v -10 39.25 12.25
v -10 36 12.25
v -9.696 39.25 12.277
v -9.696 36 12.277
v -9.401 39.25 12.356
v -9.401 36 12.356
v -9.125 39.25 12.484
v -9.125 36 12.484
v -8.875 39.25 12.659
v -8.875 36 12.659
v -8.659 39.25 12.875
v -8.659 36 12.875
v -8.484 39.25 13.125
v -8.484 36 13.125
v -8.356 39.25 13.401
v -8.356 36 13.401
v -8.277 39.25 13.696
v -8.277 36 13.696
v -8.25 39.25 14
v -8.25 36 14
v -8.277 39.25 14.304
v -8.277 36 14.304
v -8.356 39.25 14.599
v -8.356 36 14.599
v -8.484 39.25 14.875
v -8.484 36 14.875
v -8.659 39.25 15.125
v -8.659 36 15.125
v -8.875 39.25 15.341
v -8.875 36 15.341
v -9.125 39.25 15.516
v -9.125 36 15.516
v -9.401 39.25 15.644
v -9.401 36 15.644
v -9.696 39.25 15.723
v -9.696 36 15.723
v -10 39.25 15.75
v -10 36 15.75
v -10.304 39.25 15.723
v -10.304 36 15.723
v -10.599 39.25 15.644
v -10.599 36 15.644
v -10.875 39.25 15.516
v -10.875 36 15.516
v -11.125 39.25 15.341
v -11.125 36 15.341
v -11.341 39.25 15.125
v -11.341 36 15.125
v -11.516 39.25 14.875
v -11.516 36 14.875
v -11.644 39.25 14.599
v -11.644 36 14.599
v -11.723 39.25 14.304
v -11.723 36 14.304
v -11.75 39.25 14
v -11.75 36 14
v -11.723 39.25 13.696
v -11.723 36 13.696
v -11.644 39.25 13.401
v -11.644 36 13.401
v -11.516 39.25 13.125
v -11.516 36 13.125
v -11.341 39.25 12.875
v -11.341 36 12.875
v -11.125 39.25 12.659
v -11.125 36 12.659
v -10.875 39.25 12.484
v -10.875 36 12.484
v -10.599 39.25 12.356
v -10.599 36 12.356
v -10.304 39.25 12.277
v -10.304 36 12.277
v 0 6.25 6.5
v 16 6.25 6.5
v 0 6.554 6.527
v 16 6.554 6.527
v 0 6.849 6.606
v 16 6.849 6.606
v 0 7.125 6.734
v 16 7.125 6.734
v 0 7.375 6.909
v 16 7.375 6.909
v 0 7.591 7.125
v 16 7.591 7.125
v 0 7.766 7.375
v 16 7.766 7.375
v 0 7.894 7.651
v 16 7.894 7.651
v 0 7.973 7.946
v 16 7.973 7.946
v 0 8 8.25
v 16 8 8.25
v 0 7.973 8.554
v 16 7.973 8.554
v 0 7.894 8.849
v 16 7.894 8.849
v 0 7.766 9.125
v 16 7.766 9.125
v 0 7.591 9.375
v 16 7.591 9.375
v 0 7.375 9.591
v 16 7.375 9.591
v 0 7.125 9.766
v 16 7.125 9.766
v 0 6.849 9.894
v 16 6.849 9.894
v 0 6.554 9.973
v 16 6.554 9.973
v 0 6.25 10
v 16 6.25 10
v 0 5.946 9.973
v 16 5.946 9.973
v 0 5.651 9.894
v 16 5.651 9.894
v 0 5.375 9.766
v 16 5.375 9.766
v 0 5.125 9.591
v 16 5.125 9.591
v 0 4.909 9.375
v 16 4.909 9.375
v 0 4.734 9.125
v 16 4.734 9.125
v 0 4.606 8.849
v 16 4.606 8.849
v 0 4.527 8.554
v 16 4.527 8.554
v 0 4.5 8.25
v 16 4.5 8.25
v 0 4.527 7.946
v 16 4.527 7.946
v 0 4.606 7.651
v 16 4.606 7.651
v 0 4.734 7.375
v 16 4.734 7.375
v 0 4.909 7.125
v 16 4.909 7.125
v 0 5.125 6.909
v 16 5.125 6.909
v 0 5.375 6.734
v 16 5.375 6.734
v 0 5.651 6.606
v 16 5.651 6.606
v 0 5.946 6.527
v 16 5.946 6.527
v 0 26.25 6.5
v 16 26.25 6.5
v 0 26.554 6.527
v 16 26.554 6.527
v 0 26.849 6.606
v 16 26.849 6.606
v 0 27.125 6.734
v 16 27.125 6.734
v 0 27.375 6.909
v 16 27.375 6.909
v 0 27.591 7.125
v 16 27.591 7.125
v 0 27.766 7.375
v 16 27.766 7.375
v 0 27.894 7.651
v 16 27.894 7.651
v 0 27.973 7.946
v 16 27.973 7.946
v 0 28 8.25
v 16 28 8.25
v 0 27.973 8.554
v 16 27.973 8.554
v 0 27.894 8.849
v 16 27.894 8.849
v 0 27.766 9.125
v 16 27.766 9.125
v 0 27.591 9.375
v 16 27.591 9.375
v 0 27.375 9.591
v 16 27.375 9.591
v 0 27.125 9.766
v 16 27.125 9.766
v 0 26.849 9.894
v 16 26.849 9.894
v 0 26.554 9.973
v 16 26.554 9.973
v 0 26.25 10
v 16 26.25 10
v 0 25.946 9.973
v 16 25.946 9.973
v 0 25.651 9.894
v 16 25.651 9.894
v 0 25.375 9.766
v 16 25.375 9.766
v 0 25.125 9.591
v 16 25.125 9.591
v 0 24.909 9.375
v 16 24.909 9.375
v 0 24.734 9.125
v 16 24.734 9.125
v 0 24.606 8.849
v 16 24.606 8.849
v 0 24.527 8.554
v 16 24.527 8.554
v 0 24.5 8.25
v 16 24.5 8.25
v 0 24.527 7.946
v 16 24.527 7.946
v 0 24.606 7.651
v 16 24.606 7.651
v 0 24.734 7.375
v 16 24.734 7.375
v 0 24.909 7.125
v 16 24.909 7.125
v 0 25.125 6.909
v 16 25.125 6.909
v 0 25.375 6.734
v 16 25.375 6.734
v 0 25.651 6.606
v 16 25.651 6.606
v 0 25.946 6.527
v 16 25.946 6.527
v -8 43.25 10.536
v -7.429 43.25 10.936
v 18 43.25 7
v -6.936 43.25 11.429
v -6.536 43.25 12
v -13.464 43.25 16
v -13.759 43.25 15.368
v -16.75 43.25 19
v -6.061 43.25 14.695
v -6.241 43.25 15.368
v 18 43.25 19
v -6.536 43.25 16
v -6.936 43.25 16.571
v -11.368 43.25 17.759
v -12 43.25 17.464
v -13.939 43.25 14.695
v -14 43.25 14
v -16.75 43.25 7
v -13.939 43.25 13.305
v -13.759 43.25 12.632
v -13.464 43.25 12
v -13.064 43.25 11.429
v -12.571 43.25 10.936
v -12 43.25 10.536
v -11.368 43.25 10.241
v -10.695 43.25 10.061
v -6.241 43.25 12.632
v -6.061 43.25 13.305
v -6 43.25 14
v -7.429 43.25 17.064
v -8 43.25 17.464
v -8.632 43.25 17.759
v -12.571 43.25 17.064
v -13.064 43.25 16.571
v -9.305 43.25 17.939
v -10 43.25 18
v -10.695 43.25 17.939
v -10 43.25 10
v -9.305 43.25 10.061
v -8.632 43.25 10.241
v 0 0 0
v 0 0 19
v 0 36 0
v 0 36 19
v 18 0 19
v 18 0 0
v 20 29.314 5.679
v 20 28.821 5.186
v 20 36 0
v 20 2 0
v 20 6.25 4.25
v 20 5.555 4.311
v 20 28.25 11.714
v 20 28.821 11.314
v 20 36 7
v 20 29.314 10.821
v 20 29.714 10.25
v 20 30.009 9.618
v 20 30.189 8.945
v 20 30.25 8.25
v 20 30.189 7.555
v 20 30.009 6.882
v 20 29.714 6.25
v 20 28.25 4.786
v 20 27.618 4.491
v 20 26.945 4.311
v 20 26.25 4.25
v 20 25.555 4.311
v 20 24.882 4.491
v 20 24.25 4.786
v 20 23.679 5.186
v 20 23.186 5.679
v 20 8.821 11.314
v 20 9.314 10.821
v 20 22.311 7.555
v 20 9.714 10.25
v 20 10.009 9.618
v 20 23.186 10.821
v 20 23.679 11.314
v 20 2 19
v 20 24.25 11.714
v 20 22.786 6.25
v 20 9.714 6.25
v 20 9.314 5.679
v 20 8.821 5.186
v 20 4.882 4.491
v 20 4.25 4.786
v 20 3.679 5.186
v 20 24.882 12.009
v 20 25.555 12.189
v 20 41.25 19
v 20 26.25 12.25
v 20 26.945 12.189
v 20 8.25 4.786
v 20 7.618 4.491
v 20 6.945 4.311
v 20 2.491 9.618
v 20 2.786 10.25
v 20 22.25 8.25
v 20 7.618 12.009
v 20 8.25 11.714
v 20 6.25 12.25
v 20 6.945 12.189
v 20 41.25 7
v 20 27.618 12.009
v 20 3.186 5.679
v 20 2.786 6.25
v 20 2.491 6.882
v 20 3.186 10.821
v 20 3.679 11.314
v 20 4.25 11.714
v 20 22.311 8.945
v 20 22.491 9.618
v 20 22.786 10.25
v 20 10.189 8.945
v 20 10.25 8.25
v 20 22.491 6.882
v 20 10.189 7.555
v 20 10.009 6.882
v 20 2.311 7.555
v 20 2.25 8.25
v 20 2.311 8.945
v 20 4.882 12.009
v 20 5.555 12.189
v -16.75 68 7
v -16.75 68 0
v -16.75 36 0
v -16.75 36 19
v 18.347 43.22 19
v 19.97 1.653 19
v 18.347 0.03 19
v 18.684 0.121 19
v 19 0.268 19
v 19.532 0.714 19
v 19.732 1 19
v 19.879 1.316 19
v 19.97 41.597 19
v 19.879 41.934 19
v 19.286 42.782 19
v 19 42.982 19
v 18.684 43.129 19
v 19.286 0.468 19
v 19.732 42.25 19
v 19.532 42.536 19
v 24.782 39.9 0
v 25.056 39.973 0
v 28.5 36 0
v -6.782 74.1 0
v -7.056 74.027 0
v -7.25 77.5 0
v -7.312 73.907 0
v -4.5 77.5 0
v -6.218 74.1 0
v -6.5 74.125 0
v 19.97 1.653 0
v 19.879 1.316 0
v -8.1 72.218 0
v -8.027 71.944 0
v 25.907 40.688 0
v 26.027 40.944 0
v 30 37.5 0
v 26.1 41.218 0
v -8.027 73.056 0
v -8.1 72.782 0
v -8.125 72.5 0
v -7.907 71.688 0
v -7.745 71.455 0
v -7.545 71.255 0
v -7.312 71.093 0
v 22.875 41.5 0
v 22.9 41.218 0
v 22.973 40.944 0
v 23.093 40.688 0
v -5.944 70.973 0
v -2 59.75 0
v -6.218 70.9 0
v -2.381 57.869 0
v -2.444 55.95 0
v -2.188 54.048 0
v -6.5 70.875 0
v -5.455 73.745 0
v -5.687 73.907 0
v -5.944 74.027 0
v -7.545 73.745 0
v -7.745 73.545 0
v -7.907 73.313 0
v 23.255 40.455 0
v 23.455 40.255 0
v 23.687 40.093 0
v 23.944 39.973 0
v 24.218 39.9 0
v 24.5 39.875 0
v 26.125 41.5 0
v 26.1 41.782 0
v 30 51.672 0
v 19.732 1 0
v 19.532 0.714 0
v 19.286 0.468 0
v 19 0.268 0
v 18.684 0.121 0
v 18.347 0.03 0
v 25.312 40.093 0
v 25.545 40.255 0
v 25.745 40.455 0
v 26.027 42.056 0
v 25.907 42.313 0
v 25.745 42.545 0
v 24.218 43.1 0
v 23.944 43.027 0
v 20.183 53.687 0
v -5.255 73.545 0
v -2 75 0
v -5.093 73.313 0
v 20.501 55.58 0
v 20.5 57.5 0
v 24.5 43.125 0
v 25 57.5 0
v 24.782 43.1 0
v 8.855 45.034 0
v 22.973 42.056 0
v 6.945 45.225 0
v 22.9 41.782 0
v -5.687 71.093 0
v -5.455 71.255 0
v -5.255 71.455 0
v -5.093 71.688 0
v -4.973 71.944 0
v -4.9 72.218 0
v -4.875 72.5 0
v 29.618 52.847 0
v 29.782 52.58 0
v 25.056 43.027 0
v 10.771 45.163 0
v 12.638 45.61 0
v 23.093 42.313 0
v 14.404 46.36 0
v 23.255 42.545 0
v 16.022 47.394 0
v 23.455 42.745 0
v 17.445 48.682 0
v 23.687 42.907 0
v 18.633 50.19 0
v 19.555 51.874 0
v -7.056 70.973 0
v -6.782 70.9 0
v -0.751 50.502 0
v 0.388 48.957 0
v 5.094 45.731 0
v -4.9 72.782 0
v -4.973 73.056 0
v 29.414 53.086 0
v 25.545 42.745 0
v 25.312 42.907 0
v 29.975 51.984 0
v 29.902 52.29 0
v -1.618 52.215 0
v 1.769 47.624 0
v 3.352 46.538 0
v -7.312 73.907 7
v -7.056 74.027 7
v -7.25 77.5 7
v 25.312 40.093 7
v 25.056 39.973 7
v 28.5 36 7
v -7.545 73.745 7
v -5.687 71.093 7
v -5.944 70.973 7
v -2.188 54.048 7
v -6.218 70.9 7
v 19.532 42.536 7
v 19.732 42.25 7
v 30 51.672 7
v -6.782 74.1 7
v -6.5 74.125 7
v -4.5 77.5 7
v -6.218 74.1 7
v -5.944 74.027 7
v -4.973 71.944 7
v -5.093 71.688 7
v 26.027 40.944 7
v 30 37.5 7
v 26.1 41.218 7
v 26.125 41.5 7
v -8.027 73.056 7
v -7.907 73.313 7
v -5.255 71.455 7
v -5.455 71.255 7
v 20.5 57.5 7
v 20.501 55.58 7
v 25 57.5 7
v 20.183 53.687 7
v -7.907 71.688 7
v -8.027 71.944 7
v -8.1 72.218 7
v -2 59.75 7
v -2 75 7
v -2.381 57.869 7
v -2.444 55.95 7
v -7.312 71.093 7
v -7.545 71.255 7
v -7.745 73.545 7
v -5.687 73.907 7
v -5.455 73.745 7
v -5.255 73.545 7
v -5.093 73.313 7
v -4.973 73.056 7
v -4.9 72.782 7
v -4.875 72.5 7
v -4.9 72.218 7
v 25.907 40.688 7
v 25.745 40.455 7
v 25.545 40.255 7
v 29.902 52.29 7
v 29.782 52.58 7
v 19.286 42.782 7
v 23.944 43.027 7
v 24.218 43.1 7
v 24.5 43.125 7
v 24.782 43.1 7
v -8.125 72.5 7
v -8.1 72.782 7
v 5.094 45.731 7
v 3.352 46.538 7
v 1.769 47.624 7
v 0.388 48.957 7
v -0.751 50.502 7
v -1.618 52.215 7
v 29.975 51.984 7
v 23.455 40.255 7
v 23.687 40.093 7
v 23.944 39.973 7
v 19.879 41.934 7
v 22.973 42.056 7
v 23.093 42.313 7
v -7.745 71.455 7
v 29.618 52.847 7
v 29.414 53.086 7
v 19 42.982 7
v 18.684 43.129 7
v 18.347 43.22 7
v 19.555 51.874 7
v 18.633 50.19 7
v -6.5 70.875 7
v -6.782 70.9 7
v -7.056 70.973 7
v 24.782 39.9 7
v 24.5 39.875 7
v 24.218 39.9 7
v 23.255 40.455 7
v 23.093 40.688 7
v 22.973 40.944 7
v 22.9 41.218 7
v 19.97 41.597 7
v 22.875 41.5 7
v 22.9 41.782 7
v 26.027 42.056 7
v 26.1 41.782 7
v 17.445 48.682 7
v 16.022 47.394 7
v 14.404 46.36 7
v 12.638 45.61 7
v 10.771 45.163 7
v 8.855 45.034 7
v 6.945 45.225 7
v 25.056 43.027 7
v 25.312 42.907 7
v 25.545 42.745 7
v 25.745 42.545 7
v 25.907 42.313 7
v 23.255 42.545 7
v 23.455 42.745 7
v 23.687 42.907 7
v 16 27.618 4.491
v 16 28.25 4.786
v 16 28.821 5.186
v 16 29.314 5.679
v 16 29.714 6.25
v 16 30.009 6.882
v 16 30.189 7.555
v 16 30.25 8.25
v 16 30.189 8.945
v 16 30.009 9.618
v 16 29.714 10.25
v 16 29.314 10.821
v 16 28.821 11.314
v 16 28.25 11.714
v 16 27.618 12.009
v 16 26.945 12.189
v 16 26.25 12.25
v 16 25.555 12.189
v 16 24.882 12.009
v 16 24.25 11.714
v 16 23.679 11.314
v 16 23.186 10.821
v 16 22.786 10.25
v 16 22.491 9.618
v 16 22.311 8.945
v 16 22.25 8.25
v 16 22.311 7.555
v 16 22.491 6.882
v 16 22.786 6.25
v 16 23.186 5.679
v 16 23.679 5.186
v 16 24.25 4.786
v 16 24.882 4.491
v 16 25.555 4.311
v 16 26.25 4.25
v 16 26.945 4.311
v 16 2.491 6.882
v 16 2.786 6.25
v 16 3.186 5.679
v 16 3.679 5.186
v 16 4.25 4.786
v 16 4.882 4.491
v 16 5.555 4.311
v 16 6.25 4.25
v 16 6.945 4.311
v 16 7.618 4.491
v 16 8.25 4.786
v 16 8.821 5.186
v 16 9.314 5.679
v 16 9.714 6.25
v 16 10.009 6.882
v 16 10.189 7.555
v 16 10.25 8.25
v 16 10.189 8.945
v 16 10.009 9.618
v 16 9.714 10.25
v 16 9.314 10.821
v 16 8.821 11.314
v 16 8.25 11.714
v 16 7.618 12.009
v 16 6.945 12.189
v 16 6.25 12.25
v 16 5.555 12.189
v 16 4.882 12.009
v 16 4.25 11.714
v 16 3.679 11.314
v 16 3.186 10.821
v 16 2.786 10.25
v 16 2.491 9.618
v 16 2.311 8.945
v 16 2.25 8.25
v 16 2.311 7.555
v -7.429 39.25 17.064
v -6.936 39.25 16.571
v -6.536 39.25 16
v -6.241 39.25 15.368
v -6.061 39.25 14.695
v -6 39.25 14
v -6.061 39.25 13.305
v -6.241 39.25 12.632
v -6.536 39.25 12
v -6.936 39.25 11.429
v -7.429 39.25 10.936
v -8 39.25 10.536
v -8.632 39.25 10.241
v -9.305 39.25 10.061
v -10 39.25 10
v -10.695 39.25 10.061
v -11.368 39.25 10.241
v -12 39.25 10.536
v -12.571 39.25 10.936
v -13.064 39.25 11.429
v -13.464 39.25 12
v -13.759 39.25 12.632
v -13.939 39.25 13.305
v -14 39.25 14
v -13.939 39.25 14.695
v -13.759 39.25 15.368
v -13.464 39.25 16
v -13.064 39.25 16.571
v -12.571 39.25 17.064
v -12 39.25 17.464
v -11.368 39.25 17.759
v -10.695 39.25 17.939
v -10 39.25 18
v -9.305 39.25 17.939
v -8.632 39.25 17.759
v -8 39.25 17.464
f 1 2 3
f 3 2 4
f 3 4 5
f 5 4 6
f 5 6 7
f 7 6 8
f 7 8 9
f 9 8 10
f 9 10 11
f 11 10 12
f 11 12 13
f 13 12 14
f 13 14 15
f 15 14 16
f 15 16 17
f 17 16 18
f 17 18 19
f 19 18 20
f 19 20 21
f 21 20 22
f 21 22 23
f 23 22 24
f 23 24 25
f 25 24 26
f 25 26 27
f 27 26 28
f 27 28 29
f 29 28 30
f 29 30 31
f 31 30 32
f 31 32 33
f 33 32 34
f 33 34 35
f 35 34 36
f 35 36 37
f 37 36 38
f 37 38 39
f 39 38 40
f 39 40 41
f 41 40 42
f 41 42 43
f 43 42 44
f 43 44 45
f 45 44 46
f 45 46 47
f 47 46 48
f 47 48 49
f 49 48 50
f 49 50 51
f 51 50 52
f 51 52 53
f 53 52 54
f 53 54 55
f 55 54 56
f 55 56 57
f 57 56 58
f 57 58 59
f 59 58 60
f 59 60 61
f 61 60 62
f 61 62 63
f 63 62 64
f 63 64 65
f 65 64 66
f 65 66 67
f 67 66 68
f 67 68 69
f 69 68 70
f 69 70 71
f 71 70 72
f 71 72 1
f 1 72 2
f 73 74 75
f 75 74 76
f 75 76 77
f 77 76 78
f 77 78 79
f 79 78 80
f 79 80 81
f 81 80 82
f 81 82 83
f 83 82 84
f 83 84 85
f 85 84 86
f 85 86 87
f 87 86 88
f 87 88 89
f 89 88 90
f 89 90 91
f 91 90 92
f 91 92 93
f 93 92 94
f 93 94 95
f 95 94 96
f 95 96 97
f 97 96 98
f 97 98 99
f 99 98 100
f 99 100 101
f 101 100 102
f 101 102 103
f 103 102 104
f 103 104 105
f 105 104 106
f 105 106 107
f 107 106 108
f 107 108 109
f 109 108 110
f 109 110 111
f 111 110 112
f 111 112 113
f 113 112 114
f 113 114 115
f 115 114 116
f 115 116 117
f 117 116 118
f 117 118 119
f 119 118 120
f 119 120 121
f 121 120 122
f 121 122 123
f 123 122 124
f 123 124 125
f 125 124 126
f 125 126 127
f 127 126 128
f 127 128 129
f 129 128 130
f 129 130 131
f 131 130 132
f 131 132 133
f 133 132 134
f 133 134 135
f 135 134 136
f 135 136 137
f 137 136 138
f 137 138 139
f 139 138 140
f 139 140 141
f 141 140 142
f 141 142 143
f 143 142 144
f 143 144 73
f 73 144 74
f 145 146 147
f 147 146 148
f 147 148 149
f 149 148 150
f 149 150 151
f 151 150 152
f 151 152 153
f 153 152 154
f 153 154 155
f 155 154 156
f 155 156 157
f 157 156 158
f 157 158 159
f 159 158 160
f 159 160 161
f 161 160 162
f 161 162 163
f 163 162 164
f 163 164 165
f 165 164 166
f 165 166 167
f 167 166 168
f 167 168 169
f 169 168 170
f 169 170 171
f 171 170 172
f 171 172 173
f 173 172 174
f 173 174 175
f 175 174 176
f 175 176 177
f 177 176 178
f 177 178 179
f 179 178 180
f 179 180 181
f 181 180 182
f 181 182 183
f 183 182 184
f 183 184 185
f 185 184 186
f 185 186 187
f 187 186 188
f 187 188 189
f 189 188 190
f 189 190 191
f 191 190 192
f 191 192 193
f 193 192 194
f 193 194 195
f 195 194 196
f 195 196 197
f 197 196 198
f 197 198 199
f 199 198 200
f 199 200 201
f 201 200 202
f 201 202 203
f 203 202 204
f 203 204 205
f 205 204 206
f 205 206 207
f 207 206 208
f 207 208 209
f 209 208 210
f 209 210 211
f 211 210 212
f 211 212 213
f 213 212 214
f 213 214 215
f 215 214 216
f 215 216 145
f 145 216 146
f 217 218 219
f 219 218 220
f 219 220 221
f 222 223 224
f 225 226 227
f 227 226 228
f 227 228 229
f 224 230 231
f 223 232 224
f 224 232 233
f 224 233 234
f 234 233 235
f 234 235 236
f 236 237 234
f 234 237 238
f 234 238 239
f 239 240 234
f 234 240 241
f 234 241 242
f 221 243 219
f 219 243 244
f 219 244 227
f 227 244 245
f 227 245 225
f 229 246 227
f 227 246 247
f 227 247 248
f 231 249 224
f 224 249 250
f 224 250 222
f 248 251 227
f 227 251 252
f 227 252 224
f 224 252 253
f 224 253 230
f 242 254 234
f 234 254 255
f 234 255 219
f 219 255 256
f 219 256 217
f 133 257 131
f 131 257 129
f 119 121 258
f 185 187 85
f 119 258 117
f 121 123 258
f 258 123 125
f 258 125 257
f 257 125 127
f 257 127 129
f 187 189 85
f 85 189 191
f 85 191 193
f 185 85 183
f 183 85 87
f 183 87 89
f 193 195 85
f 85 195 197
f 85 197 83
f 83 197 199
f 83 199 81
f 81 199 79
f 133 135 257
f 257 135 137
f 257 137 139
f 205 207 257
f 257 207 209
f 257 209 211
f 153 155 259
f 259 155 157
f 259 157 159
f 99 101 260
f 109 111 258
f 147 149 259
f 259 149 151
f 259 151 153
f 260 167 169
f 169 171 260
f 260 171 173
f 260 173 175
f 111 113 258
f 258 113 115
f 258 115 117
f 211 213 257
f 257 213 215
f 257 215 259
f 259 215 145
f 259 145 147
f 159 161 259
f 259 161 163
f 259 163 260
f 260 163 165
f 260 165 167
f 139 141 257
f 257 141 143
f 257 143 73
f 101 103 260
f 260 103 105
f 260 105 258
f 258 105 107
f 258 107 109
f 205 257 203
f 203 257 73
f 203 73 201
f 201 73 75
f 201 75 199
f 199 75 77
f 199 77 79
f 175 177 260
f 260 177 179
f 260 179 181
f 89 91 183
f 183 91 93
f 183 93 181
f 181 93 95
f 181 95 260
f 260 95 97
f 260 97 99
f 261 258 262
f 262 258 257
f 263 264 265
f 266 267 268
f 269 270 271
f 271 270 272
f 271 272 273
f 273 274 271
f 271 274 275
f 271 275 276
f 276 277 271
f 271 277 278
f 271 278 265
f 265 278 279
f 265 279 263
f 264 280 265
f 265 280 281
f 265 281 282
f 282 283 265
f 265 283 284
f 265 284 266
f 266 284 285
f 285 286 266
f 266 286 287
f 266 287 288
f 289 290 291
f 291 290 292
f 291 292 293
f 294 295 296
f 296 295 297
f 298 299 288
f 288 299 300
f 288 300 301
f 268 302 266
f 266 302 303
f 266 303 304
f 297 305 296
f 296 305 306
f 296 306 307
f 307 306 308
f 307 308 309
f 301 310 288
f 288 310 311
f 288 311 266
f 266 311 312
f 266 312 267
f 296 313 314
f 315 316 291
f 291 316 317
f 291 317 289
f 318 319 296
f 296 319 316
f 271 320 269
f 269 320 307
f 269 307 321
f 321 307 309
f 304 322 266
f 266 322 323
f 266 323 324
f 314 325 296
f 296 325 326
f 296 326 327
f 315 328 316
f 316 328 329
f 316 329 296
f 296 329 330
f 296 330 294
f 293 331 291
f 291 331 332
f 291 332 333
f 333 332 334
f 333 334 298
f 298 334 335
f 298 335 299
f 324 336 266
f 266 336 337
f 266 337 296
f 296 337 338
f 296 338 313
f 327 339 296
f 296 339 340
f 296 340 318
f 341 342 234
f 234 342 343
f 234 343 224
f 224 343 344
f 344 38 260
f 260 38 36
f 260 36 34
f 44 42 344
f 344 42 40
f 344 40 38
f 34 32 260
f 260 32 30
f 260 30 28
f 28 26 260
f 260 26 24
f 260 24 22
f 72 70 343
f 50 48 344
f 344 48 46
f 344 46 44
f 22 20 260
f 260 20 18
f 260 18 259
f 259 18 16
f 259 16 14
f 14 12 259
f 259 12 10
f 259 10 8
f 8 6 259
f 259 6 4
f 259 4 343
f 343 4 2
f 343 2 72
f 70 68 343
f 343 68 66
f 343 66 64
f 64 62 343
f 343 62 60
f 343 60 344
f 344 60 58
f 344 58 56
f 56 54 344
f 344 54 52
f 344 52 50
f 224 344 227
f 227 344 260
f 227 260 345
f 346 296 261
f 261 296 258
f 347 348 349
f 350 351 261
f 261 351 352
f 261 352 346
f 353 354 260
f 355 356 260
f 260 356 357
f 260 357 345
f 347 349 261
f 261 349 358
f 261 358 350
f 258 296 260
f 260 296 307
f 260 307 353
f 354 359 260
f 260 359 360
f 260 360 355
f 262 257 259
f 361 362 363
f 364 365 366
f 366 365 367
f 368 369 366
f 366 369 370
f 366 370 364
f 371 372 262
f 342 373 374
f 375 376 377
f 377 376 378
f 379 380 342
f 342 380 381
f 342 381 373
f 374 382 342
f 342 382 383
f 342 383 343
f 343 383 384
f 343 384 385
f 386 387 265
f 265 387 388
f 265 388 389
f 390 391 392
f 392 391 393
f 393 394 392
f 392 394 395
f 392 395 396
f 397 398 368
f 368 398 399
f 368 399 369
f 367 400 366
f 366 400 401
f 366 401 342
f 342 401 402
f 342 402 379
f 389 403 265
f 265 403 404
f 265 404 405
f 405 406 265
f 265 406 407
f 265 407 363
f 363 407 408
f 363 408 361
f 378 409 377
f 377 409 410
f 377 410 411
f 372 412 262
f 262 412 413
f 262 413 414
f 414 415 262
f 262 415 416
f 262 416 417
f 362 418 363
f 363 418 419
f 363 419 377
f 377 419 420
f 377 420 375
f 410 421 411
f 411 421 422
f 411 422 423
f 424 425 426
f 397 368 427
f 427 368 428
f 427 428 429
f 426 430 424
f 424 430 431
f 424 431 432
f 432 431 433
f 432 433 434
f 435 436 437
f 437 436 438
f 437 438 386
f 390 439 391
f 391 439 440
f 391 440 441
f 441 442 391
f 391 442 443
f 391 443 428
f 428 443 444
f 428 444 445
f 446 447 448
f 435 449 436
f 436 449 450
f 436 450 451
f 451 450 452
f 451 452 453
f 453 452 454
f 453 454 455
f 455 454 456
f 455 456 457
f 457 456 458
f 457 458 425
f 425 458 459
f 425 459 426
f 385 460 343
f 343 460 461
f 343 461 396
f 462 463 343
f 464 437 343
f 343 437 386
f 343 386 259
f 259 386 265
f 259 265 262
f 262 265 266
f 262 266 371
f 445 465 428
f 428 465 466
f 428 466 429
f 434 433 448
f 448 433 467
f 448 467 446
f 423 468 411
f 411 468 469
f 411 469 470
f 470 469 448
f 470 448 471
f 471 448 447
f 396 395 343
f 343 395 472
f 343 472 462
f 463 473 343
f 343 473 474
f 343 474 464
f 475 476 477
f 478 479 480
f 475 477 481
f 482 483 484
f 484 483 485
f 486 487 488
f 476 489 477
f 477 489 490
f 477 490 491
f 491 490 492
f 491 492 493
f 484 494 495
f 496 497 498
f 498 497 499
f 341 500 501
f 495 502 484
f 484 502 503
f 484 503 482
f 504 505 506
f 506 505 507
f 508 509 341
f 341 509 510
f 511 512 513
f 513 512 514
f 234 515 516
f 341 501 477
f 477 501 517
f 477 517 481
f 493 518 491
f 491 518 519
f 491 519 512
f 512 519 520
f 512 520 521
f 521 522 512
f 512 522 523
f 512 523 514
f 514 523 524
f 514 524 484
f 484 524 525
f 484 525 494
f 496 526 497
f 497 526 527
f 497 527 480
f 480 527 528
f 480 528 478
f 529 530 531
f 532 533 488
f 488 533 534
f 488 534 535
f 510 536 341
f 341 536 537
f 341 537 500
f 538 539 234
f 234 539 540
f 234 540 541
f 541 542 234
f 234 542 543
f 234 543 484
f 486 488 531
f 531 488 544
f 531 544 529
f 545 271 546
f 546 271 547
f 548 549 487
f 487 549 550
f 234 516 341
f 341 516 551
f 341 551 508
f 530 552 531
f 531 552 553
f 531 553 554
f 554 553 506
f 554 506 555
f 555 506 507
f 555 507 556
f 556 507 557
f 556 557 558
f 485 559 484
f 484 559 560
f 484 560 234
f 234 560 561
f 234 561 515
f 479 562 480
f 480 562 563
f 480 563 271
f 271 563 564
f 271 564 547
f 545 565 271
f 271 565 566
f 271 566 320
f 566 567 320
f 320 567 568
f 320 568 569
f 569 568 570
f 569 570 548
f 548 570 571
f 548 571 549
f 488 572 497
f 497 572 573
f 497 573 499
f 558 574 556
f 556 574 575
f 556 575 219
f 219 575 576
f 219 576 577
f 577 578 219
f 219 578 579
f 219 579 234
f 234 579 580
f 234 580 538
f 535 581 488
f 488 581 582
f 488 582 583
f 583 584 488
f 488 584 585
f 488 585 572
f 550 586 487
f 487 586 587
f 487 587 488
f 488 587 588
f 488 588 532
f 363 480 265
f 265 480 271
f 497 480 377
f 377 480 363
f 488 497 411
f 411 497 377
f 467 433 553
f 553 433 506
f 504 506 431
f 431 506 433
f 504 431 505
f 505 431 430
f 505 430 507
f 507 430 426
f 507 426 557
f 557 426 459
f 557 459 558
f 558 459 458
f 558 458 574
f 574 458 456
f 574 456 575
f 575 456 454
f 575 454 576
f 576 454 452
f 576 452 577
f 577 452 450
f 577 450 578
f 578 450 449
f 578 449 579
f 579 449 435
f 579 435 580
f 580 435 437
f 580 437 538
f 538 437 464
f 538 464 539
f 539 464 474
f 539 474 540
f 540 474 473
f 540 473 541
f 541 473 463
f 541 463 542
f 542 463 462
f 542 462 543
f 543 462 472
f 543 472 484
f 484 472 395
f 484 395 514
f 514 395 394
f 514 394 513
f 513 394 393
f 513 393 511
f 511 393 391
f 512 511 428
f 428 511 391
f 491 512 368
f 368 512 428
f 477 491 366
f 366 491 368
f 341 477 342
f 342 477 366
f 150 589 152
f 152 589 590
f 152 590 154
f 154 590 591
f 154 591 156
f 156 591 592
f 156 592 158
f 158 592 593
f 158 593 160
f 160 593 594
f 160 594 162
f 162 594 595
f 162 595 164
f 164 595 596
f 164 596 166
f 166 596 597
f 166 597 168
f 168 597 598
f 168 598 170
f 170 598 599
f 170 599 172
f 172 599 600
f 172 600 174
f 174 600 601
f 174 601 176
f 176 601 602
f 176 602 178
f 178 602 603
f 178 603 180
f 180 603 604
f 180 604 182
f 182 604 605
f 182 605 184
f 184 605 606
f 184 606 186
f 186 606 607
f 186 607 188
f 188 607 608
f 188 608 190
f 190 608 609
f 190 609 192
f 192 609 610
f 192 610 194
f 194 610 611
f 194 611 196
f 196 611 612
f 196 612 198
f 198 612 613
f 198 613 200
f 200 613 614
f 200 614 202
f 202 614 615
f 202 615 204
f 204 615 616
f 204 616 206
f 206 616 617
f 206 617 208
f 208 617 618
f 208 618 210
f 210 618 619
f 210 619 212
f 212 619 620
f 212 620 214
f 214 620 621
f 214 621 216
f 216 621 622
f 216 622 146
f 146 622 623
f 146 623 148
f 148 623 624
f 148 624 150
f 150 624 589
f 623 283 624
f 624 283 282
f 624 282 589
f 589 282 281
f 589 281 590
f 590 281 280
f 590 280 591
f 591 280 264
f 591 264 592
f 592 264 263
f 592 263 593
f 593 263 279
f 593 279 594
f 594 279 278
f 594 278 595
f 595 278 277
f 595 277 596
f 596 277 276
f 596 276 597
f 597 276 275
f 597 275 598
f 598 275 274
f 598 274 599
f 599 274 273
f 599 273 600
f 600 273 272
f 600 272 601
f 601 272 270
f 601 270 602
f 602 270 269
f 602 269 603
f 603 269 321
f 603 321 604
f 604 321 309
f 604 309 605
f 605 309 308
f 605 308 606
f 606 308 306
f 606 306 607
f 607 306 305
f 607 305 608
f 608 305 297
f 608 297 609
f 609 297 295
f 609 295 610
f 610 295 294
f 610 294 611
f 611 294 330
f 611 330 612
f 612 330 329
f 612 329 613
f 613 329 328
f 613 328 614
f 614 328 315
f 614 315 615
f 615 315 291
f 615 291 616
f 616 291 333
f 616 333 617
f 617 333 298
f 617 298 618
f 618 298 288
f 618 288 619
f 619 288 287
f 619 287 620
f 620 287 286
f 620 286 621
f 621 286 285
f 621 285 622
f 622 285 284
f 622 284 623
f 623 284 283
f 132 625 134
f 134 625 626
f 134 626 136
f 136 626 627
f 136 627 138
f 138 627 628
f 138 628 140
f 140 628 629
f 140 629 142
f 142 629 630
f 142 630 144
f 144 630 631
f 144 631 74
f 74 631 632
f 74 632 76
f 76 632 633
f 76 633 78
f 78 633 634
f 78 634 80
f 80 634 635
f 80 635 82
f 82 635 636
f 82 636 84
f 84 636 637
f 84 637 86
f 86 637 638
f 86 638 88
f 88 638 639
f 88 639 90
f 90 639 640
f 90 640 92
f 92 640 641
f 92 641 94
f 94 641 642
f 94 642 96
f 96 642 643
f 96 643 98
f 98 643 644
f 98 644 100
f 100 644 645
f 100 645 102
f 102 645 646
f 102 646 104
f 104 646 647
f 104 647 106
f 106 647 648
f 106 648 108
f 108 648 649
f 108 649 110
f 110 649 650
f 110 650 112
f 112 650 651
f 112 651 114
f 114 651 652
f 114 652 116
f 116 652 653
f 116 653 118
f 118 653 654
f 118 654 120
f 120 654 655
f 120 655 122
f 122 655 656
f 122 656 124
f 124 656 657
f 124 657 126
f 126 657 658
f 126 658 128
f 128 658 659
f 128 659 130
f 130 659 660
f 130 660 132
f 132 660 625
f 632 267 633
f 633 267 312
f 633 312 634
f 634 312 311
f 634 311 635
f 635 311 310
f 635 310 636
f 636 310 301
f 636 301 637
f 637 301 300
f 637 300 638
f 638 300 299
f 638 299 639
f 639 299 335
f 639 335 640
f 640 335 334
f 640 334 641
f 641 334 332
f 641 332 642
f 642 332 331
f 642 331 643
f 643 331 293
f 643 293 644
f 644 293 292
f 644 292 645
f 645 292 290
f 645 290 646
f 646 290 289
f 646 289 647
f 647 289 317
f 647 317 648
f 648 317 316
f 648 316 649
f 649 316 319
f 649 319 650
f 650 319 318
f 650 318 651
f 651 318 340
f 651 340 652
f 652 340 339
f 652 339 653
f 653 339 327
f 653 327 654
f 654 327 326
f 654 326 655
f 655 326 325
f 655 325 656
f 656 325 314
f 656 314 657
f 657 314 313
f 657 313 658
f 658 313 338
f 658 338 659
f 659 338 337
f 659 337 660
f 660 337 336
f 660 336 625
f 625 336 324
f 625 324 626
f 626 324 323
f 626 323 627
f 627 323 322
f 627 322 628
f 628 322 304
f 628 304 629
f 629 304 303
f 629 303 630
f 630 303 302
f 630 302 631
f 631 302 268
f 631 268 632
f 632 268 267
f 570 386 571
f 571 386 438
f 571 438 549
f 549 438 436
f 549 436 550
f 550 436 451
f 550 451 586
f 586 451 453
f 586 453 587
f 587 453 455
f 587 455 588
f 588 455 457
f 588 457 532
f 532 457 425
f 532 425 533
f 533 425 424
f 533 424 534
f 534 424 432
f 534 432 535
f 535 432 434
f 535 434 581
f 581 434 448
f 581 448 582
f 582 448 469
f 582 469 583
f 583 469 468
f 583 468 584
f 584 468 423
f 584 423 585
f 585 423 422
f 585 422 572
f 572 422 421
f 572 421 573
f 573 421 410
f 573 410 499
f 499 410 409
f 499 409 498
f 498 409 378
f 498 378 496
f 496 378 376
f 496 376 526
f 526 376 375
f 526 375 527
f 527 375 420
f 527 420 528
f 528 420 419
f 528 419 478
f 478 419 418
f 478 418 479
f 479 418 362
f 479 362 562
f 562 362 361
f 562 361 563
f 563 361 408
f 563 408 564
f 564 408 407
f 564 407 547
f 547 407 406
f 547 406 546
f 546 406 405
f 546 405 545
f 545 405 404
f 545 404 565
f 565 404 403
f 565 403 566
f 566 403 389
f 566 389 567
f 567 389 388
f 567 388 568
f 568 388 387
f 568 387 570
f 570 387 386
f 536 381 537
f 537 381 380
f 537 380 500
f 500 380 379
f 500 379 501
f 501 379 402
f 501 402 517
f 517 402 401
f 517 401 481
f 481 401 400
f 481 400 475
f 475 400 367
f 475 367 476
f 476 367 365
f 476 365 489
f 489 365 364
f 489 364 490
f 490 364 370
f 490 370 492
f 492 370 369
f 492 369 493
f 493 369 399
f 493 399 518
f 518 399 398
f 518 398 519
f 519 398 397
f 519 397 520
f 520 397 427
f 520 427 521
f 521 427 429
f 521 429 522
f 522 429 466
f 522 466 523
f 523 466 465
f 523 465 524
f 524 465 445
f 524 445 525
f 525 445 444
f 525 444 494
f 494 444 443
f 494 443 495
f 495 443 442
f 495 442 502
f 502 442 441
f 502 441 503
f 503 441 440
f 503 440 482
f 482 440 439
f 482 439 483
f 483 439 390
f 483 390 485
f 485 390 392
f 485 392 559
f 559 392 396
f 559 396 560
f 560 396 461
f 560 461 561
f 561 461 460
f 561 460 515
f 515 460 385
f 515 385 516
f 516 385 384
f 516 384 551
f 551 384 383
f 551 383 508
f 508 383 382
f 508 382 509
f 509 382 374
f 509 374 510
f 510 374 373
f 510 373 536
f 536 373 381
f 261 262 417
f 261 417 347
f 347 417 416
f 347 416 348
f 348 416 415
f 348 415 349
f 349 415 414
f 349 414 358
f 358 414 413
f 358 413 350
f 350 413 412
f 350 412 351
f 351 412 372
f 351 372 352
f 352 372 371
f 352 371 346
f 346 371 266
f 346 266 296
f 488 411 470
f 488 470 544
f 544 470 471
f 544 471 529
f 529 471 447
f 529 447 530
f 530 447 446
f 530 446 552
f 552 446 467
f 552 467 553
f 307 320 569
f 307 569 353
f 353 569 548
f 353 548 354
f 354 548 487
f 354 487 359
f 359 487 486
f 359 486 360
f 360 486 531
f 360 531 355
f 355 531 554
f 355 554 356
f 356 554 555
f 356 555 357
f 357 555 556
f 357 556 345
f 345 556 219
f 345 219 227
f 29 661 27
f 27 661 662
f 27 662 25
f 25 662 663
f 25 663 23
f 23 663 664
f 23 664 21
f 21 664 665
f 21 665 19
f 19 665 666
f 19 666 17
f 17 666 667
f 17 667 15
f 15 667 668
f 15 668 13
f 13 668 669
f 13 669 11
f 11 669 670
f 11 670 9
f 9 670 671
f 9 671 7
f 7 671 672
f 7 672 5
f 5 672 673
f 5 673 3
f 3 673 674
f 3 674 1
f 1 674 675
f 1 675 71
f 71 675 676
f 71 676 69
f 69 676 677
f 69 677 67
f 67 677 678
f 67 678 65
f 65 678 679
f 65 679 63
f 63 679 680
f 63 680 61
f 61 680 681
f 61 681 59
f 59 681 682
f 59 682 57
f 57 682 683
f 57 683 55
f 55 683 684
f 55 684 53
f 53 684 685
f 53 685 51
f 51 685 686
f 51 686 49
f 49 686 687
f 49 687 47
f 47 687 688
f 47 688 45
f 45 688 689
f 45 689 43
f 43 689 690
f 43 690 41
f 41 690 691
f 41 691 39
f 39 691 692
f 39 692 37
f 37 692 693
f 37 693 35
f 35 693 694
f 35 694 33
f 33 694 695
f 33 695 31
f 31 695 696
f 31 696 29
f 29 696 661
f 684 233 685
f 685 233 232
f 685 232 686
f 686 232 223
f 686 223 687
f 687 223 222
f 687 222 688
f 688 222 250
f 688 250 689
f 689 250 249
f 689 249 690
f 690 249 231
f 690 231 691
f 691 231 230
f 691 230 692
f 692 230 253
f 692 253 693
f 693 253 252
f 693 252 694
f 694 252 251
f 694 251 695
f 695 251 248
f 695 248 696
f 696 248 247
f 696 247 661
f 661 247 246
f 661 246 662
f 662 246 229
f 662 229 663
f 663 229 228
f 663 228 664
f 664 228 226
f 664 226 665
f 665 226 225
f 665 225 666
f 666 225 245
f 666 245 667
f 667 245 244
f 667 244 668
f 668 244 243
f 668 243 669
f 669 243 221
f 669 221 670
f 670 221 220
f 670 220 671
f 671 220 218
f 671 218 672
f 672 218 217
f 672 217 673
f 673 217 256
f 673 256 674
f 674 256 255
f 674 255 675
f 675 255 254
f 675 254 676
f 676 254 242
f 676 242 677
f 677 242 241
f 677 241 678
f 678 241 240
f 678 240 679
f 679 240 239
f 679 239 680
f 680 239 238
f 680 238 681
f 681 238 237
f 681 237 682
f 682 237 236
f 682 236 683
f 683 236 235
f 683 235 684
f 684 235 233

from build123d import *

# Parameters (mm, degrees)
BOSS_EXTRUDE1_DEPTH = 19
BOSS_EXTRUDE2_DEPTH = 7
SKETCH3_R           = 1.75
CUT_EXTRUDE1_DEPTH  = 37.75
SKETCH6_R           = 4
CUT_EXTRUDE4_DEPTH  = 4
SKETCH7_R           = 1.625
CUT_EXTRUDE5_DEPTH  = 20
FILLET1_R           = 2
SKETCH8_R           = 1.75
CUT_EXTRUDE6_DEPTH  = 10
SKETCH9_R           = 4
CUT_EXTRUDE7_DEPTH  = 4


with BuildPart() as part:
    # Sketch1 → Boss-Extrude1 (new body)
    with BuildSketch(Plane.XY):
        Polygon((0, 0), (20, 0), (20, 43.25), (-16.75, 43.25), (-16.75, 36), (0, 36), align=None)
    extrude(amount=BOSS_EXTRUDE1_DEPTH)

    # Sketch2 → Boss-Extrude2 (add)
    with BuildSketch(Plane(origin=(0, 0, 0), x_dir=(-1, 0, 0), z_dir=(0, 0, -1))):
        with BuildLine():
            Line((-20, 36), (16.75, 36))
            Line((16.75, 36), (16.75, 68))
            Line((16.75, 68), (7.25, 77.5))
            Line((7.25, 77.5), (4.5, 77.5))
            Line((4.5, 77.5), (2, 75))
            Line((2, 75), (2, 59.75))
            ThreePointArc((2, 59.75), (-7.896468276, 45.089682755), (-20.5, 57.5))
            Line((-20.5, 57.5), (-25, 57.5))
            Line((-25, 57.5), (-30, 52.5))
            Line((-30, 52.5), (-30, 37.5))
            Line((-30, 37.5), (-28.5, 36))
            Line((-28.5, 36), (-20, 36))
        make_face()
    extrude(amount=-BOSS_EXTRUDE2_DEPTH)

    # Sketch3 → Cut-Extrude1 (cut, through all)
    with BuildSketch(Plane(origin=(20, 0, 0), x_dir=(0, 0, -1), z_dir=(1, 0, 0))):
        with Locations((-8.25, 26.25)):
            Circle(SKETCH3_R)
        with Locations((-8.25, 6.25)):
            Circle(SKETCH3_R)
    extrude(amount=-CUT_EXTRUDE1_DEPTH, mode=Mode.SUBTRACT)

    # Sketch6 → Cut-Extrude4 (cut)
    with BuildSketch(Plane(origin=(20, 0, 0), x_dir=(0, 0, -1), z_dir=(1, 0, 0))):
        with Locations((-8.25, 26.25)):
            Circle(SKETCH6_R)
        with Locations((-8.25, 6.25)):
            Circle(SKETCH6_R)
    extrude(amount=-CUT_EXTRUDE4_DEPTH, mode=Mode.SUBTRACT)

    # Sketch7 → Cut-Extrude5 (cut, through all)
    with BuildSketch(Plane(origin=(0, 0, 0), x_dir=(-1, 0, 0), z_dir=(0, 0, -1))):
        with Locations((6.5, 72.5)):
            Circle(SKETCH7_R)
        with Locations((-24.5, 41.5)):
            Circle(SKETCH7_R)
    extrude(amount=-CUT_EXTRUDE5_DEPTH, mode=Mode.SUBTRACT)

    # Fillet1
    fillet1_edges = [part.edges().sort_by_distance(p)[0] for p in [
        (20, 43.25, 13),
        (20, 0, 9.5),
        (30, 52.5, 3.5),
    ]]
    fillet(fillet1_edges, radius=FILLET1_R)

    # Sketch8 → Cut-Extrude6 (cut)
    with BuildSketch(Plane.XZ.offset(-36)):
        with Locations((-10, 14)):
            Circle(SKETCH8_R)
    extrude(amount=-CUT_EXTRUDE6_DEPTH, mode=Mode.SUBTRACT)

    # Sketch9 → Cut-Extrude7 (cut)
    with BuildSketch(Plane(origin=(0, 43.25, 0), x_dir=(1, 0, 0), z_dir=(0, 1, 0))):
        with Locations((-10, -14)):
            Circle(SKETCH9_R)
    extrude(amount=-CUT_EXTRUDE7_DEPTH, mode=Mode.SUBTRACT)


solid = part.part
